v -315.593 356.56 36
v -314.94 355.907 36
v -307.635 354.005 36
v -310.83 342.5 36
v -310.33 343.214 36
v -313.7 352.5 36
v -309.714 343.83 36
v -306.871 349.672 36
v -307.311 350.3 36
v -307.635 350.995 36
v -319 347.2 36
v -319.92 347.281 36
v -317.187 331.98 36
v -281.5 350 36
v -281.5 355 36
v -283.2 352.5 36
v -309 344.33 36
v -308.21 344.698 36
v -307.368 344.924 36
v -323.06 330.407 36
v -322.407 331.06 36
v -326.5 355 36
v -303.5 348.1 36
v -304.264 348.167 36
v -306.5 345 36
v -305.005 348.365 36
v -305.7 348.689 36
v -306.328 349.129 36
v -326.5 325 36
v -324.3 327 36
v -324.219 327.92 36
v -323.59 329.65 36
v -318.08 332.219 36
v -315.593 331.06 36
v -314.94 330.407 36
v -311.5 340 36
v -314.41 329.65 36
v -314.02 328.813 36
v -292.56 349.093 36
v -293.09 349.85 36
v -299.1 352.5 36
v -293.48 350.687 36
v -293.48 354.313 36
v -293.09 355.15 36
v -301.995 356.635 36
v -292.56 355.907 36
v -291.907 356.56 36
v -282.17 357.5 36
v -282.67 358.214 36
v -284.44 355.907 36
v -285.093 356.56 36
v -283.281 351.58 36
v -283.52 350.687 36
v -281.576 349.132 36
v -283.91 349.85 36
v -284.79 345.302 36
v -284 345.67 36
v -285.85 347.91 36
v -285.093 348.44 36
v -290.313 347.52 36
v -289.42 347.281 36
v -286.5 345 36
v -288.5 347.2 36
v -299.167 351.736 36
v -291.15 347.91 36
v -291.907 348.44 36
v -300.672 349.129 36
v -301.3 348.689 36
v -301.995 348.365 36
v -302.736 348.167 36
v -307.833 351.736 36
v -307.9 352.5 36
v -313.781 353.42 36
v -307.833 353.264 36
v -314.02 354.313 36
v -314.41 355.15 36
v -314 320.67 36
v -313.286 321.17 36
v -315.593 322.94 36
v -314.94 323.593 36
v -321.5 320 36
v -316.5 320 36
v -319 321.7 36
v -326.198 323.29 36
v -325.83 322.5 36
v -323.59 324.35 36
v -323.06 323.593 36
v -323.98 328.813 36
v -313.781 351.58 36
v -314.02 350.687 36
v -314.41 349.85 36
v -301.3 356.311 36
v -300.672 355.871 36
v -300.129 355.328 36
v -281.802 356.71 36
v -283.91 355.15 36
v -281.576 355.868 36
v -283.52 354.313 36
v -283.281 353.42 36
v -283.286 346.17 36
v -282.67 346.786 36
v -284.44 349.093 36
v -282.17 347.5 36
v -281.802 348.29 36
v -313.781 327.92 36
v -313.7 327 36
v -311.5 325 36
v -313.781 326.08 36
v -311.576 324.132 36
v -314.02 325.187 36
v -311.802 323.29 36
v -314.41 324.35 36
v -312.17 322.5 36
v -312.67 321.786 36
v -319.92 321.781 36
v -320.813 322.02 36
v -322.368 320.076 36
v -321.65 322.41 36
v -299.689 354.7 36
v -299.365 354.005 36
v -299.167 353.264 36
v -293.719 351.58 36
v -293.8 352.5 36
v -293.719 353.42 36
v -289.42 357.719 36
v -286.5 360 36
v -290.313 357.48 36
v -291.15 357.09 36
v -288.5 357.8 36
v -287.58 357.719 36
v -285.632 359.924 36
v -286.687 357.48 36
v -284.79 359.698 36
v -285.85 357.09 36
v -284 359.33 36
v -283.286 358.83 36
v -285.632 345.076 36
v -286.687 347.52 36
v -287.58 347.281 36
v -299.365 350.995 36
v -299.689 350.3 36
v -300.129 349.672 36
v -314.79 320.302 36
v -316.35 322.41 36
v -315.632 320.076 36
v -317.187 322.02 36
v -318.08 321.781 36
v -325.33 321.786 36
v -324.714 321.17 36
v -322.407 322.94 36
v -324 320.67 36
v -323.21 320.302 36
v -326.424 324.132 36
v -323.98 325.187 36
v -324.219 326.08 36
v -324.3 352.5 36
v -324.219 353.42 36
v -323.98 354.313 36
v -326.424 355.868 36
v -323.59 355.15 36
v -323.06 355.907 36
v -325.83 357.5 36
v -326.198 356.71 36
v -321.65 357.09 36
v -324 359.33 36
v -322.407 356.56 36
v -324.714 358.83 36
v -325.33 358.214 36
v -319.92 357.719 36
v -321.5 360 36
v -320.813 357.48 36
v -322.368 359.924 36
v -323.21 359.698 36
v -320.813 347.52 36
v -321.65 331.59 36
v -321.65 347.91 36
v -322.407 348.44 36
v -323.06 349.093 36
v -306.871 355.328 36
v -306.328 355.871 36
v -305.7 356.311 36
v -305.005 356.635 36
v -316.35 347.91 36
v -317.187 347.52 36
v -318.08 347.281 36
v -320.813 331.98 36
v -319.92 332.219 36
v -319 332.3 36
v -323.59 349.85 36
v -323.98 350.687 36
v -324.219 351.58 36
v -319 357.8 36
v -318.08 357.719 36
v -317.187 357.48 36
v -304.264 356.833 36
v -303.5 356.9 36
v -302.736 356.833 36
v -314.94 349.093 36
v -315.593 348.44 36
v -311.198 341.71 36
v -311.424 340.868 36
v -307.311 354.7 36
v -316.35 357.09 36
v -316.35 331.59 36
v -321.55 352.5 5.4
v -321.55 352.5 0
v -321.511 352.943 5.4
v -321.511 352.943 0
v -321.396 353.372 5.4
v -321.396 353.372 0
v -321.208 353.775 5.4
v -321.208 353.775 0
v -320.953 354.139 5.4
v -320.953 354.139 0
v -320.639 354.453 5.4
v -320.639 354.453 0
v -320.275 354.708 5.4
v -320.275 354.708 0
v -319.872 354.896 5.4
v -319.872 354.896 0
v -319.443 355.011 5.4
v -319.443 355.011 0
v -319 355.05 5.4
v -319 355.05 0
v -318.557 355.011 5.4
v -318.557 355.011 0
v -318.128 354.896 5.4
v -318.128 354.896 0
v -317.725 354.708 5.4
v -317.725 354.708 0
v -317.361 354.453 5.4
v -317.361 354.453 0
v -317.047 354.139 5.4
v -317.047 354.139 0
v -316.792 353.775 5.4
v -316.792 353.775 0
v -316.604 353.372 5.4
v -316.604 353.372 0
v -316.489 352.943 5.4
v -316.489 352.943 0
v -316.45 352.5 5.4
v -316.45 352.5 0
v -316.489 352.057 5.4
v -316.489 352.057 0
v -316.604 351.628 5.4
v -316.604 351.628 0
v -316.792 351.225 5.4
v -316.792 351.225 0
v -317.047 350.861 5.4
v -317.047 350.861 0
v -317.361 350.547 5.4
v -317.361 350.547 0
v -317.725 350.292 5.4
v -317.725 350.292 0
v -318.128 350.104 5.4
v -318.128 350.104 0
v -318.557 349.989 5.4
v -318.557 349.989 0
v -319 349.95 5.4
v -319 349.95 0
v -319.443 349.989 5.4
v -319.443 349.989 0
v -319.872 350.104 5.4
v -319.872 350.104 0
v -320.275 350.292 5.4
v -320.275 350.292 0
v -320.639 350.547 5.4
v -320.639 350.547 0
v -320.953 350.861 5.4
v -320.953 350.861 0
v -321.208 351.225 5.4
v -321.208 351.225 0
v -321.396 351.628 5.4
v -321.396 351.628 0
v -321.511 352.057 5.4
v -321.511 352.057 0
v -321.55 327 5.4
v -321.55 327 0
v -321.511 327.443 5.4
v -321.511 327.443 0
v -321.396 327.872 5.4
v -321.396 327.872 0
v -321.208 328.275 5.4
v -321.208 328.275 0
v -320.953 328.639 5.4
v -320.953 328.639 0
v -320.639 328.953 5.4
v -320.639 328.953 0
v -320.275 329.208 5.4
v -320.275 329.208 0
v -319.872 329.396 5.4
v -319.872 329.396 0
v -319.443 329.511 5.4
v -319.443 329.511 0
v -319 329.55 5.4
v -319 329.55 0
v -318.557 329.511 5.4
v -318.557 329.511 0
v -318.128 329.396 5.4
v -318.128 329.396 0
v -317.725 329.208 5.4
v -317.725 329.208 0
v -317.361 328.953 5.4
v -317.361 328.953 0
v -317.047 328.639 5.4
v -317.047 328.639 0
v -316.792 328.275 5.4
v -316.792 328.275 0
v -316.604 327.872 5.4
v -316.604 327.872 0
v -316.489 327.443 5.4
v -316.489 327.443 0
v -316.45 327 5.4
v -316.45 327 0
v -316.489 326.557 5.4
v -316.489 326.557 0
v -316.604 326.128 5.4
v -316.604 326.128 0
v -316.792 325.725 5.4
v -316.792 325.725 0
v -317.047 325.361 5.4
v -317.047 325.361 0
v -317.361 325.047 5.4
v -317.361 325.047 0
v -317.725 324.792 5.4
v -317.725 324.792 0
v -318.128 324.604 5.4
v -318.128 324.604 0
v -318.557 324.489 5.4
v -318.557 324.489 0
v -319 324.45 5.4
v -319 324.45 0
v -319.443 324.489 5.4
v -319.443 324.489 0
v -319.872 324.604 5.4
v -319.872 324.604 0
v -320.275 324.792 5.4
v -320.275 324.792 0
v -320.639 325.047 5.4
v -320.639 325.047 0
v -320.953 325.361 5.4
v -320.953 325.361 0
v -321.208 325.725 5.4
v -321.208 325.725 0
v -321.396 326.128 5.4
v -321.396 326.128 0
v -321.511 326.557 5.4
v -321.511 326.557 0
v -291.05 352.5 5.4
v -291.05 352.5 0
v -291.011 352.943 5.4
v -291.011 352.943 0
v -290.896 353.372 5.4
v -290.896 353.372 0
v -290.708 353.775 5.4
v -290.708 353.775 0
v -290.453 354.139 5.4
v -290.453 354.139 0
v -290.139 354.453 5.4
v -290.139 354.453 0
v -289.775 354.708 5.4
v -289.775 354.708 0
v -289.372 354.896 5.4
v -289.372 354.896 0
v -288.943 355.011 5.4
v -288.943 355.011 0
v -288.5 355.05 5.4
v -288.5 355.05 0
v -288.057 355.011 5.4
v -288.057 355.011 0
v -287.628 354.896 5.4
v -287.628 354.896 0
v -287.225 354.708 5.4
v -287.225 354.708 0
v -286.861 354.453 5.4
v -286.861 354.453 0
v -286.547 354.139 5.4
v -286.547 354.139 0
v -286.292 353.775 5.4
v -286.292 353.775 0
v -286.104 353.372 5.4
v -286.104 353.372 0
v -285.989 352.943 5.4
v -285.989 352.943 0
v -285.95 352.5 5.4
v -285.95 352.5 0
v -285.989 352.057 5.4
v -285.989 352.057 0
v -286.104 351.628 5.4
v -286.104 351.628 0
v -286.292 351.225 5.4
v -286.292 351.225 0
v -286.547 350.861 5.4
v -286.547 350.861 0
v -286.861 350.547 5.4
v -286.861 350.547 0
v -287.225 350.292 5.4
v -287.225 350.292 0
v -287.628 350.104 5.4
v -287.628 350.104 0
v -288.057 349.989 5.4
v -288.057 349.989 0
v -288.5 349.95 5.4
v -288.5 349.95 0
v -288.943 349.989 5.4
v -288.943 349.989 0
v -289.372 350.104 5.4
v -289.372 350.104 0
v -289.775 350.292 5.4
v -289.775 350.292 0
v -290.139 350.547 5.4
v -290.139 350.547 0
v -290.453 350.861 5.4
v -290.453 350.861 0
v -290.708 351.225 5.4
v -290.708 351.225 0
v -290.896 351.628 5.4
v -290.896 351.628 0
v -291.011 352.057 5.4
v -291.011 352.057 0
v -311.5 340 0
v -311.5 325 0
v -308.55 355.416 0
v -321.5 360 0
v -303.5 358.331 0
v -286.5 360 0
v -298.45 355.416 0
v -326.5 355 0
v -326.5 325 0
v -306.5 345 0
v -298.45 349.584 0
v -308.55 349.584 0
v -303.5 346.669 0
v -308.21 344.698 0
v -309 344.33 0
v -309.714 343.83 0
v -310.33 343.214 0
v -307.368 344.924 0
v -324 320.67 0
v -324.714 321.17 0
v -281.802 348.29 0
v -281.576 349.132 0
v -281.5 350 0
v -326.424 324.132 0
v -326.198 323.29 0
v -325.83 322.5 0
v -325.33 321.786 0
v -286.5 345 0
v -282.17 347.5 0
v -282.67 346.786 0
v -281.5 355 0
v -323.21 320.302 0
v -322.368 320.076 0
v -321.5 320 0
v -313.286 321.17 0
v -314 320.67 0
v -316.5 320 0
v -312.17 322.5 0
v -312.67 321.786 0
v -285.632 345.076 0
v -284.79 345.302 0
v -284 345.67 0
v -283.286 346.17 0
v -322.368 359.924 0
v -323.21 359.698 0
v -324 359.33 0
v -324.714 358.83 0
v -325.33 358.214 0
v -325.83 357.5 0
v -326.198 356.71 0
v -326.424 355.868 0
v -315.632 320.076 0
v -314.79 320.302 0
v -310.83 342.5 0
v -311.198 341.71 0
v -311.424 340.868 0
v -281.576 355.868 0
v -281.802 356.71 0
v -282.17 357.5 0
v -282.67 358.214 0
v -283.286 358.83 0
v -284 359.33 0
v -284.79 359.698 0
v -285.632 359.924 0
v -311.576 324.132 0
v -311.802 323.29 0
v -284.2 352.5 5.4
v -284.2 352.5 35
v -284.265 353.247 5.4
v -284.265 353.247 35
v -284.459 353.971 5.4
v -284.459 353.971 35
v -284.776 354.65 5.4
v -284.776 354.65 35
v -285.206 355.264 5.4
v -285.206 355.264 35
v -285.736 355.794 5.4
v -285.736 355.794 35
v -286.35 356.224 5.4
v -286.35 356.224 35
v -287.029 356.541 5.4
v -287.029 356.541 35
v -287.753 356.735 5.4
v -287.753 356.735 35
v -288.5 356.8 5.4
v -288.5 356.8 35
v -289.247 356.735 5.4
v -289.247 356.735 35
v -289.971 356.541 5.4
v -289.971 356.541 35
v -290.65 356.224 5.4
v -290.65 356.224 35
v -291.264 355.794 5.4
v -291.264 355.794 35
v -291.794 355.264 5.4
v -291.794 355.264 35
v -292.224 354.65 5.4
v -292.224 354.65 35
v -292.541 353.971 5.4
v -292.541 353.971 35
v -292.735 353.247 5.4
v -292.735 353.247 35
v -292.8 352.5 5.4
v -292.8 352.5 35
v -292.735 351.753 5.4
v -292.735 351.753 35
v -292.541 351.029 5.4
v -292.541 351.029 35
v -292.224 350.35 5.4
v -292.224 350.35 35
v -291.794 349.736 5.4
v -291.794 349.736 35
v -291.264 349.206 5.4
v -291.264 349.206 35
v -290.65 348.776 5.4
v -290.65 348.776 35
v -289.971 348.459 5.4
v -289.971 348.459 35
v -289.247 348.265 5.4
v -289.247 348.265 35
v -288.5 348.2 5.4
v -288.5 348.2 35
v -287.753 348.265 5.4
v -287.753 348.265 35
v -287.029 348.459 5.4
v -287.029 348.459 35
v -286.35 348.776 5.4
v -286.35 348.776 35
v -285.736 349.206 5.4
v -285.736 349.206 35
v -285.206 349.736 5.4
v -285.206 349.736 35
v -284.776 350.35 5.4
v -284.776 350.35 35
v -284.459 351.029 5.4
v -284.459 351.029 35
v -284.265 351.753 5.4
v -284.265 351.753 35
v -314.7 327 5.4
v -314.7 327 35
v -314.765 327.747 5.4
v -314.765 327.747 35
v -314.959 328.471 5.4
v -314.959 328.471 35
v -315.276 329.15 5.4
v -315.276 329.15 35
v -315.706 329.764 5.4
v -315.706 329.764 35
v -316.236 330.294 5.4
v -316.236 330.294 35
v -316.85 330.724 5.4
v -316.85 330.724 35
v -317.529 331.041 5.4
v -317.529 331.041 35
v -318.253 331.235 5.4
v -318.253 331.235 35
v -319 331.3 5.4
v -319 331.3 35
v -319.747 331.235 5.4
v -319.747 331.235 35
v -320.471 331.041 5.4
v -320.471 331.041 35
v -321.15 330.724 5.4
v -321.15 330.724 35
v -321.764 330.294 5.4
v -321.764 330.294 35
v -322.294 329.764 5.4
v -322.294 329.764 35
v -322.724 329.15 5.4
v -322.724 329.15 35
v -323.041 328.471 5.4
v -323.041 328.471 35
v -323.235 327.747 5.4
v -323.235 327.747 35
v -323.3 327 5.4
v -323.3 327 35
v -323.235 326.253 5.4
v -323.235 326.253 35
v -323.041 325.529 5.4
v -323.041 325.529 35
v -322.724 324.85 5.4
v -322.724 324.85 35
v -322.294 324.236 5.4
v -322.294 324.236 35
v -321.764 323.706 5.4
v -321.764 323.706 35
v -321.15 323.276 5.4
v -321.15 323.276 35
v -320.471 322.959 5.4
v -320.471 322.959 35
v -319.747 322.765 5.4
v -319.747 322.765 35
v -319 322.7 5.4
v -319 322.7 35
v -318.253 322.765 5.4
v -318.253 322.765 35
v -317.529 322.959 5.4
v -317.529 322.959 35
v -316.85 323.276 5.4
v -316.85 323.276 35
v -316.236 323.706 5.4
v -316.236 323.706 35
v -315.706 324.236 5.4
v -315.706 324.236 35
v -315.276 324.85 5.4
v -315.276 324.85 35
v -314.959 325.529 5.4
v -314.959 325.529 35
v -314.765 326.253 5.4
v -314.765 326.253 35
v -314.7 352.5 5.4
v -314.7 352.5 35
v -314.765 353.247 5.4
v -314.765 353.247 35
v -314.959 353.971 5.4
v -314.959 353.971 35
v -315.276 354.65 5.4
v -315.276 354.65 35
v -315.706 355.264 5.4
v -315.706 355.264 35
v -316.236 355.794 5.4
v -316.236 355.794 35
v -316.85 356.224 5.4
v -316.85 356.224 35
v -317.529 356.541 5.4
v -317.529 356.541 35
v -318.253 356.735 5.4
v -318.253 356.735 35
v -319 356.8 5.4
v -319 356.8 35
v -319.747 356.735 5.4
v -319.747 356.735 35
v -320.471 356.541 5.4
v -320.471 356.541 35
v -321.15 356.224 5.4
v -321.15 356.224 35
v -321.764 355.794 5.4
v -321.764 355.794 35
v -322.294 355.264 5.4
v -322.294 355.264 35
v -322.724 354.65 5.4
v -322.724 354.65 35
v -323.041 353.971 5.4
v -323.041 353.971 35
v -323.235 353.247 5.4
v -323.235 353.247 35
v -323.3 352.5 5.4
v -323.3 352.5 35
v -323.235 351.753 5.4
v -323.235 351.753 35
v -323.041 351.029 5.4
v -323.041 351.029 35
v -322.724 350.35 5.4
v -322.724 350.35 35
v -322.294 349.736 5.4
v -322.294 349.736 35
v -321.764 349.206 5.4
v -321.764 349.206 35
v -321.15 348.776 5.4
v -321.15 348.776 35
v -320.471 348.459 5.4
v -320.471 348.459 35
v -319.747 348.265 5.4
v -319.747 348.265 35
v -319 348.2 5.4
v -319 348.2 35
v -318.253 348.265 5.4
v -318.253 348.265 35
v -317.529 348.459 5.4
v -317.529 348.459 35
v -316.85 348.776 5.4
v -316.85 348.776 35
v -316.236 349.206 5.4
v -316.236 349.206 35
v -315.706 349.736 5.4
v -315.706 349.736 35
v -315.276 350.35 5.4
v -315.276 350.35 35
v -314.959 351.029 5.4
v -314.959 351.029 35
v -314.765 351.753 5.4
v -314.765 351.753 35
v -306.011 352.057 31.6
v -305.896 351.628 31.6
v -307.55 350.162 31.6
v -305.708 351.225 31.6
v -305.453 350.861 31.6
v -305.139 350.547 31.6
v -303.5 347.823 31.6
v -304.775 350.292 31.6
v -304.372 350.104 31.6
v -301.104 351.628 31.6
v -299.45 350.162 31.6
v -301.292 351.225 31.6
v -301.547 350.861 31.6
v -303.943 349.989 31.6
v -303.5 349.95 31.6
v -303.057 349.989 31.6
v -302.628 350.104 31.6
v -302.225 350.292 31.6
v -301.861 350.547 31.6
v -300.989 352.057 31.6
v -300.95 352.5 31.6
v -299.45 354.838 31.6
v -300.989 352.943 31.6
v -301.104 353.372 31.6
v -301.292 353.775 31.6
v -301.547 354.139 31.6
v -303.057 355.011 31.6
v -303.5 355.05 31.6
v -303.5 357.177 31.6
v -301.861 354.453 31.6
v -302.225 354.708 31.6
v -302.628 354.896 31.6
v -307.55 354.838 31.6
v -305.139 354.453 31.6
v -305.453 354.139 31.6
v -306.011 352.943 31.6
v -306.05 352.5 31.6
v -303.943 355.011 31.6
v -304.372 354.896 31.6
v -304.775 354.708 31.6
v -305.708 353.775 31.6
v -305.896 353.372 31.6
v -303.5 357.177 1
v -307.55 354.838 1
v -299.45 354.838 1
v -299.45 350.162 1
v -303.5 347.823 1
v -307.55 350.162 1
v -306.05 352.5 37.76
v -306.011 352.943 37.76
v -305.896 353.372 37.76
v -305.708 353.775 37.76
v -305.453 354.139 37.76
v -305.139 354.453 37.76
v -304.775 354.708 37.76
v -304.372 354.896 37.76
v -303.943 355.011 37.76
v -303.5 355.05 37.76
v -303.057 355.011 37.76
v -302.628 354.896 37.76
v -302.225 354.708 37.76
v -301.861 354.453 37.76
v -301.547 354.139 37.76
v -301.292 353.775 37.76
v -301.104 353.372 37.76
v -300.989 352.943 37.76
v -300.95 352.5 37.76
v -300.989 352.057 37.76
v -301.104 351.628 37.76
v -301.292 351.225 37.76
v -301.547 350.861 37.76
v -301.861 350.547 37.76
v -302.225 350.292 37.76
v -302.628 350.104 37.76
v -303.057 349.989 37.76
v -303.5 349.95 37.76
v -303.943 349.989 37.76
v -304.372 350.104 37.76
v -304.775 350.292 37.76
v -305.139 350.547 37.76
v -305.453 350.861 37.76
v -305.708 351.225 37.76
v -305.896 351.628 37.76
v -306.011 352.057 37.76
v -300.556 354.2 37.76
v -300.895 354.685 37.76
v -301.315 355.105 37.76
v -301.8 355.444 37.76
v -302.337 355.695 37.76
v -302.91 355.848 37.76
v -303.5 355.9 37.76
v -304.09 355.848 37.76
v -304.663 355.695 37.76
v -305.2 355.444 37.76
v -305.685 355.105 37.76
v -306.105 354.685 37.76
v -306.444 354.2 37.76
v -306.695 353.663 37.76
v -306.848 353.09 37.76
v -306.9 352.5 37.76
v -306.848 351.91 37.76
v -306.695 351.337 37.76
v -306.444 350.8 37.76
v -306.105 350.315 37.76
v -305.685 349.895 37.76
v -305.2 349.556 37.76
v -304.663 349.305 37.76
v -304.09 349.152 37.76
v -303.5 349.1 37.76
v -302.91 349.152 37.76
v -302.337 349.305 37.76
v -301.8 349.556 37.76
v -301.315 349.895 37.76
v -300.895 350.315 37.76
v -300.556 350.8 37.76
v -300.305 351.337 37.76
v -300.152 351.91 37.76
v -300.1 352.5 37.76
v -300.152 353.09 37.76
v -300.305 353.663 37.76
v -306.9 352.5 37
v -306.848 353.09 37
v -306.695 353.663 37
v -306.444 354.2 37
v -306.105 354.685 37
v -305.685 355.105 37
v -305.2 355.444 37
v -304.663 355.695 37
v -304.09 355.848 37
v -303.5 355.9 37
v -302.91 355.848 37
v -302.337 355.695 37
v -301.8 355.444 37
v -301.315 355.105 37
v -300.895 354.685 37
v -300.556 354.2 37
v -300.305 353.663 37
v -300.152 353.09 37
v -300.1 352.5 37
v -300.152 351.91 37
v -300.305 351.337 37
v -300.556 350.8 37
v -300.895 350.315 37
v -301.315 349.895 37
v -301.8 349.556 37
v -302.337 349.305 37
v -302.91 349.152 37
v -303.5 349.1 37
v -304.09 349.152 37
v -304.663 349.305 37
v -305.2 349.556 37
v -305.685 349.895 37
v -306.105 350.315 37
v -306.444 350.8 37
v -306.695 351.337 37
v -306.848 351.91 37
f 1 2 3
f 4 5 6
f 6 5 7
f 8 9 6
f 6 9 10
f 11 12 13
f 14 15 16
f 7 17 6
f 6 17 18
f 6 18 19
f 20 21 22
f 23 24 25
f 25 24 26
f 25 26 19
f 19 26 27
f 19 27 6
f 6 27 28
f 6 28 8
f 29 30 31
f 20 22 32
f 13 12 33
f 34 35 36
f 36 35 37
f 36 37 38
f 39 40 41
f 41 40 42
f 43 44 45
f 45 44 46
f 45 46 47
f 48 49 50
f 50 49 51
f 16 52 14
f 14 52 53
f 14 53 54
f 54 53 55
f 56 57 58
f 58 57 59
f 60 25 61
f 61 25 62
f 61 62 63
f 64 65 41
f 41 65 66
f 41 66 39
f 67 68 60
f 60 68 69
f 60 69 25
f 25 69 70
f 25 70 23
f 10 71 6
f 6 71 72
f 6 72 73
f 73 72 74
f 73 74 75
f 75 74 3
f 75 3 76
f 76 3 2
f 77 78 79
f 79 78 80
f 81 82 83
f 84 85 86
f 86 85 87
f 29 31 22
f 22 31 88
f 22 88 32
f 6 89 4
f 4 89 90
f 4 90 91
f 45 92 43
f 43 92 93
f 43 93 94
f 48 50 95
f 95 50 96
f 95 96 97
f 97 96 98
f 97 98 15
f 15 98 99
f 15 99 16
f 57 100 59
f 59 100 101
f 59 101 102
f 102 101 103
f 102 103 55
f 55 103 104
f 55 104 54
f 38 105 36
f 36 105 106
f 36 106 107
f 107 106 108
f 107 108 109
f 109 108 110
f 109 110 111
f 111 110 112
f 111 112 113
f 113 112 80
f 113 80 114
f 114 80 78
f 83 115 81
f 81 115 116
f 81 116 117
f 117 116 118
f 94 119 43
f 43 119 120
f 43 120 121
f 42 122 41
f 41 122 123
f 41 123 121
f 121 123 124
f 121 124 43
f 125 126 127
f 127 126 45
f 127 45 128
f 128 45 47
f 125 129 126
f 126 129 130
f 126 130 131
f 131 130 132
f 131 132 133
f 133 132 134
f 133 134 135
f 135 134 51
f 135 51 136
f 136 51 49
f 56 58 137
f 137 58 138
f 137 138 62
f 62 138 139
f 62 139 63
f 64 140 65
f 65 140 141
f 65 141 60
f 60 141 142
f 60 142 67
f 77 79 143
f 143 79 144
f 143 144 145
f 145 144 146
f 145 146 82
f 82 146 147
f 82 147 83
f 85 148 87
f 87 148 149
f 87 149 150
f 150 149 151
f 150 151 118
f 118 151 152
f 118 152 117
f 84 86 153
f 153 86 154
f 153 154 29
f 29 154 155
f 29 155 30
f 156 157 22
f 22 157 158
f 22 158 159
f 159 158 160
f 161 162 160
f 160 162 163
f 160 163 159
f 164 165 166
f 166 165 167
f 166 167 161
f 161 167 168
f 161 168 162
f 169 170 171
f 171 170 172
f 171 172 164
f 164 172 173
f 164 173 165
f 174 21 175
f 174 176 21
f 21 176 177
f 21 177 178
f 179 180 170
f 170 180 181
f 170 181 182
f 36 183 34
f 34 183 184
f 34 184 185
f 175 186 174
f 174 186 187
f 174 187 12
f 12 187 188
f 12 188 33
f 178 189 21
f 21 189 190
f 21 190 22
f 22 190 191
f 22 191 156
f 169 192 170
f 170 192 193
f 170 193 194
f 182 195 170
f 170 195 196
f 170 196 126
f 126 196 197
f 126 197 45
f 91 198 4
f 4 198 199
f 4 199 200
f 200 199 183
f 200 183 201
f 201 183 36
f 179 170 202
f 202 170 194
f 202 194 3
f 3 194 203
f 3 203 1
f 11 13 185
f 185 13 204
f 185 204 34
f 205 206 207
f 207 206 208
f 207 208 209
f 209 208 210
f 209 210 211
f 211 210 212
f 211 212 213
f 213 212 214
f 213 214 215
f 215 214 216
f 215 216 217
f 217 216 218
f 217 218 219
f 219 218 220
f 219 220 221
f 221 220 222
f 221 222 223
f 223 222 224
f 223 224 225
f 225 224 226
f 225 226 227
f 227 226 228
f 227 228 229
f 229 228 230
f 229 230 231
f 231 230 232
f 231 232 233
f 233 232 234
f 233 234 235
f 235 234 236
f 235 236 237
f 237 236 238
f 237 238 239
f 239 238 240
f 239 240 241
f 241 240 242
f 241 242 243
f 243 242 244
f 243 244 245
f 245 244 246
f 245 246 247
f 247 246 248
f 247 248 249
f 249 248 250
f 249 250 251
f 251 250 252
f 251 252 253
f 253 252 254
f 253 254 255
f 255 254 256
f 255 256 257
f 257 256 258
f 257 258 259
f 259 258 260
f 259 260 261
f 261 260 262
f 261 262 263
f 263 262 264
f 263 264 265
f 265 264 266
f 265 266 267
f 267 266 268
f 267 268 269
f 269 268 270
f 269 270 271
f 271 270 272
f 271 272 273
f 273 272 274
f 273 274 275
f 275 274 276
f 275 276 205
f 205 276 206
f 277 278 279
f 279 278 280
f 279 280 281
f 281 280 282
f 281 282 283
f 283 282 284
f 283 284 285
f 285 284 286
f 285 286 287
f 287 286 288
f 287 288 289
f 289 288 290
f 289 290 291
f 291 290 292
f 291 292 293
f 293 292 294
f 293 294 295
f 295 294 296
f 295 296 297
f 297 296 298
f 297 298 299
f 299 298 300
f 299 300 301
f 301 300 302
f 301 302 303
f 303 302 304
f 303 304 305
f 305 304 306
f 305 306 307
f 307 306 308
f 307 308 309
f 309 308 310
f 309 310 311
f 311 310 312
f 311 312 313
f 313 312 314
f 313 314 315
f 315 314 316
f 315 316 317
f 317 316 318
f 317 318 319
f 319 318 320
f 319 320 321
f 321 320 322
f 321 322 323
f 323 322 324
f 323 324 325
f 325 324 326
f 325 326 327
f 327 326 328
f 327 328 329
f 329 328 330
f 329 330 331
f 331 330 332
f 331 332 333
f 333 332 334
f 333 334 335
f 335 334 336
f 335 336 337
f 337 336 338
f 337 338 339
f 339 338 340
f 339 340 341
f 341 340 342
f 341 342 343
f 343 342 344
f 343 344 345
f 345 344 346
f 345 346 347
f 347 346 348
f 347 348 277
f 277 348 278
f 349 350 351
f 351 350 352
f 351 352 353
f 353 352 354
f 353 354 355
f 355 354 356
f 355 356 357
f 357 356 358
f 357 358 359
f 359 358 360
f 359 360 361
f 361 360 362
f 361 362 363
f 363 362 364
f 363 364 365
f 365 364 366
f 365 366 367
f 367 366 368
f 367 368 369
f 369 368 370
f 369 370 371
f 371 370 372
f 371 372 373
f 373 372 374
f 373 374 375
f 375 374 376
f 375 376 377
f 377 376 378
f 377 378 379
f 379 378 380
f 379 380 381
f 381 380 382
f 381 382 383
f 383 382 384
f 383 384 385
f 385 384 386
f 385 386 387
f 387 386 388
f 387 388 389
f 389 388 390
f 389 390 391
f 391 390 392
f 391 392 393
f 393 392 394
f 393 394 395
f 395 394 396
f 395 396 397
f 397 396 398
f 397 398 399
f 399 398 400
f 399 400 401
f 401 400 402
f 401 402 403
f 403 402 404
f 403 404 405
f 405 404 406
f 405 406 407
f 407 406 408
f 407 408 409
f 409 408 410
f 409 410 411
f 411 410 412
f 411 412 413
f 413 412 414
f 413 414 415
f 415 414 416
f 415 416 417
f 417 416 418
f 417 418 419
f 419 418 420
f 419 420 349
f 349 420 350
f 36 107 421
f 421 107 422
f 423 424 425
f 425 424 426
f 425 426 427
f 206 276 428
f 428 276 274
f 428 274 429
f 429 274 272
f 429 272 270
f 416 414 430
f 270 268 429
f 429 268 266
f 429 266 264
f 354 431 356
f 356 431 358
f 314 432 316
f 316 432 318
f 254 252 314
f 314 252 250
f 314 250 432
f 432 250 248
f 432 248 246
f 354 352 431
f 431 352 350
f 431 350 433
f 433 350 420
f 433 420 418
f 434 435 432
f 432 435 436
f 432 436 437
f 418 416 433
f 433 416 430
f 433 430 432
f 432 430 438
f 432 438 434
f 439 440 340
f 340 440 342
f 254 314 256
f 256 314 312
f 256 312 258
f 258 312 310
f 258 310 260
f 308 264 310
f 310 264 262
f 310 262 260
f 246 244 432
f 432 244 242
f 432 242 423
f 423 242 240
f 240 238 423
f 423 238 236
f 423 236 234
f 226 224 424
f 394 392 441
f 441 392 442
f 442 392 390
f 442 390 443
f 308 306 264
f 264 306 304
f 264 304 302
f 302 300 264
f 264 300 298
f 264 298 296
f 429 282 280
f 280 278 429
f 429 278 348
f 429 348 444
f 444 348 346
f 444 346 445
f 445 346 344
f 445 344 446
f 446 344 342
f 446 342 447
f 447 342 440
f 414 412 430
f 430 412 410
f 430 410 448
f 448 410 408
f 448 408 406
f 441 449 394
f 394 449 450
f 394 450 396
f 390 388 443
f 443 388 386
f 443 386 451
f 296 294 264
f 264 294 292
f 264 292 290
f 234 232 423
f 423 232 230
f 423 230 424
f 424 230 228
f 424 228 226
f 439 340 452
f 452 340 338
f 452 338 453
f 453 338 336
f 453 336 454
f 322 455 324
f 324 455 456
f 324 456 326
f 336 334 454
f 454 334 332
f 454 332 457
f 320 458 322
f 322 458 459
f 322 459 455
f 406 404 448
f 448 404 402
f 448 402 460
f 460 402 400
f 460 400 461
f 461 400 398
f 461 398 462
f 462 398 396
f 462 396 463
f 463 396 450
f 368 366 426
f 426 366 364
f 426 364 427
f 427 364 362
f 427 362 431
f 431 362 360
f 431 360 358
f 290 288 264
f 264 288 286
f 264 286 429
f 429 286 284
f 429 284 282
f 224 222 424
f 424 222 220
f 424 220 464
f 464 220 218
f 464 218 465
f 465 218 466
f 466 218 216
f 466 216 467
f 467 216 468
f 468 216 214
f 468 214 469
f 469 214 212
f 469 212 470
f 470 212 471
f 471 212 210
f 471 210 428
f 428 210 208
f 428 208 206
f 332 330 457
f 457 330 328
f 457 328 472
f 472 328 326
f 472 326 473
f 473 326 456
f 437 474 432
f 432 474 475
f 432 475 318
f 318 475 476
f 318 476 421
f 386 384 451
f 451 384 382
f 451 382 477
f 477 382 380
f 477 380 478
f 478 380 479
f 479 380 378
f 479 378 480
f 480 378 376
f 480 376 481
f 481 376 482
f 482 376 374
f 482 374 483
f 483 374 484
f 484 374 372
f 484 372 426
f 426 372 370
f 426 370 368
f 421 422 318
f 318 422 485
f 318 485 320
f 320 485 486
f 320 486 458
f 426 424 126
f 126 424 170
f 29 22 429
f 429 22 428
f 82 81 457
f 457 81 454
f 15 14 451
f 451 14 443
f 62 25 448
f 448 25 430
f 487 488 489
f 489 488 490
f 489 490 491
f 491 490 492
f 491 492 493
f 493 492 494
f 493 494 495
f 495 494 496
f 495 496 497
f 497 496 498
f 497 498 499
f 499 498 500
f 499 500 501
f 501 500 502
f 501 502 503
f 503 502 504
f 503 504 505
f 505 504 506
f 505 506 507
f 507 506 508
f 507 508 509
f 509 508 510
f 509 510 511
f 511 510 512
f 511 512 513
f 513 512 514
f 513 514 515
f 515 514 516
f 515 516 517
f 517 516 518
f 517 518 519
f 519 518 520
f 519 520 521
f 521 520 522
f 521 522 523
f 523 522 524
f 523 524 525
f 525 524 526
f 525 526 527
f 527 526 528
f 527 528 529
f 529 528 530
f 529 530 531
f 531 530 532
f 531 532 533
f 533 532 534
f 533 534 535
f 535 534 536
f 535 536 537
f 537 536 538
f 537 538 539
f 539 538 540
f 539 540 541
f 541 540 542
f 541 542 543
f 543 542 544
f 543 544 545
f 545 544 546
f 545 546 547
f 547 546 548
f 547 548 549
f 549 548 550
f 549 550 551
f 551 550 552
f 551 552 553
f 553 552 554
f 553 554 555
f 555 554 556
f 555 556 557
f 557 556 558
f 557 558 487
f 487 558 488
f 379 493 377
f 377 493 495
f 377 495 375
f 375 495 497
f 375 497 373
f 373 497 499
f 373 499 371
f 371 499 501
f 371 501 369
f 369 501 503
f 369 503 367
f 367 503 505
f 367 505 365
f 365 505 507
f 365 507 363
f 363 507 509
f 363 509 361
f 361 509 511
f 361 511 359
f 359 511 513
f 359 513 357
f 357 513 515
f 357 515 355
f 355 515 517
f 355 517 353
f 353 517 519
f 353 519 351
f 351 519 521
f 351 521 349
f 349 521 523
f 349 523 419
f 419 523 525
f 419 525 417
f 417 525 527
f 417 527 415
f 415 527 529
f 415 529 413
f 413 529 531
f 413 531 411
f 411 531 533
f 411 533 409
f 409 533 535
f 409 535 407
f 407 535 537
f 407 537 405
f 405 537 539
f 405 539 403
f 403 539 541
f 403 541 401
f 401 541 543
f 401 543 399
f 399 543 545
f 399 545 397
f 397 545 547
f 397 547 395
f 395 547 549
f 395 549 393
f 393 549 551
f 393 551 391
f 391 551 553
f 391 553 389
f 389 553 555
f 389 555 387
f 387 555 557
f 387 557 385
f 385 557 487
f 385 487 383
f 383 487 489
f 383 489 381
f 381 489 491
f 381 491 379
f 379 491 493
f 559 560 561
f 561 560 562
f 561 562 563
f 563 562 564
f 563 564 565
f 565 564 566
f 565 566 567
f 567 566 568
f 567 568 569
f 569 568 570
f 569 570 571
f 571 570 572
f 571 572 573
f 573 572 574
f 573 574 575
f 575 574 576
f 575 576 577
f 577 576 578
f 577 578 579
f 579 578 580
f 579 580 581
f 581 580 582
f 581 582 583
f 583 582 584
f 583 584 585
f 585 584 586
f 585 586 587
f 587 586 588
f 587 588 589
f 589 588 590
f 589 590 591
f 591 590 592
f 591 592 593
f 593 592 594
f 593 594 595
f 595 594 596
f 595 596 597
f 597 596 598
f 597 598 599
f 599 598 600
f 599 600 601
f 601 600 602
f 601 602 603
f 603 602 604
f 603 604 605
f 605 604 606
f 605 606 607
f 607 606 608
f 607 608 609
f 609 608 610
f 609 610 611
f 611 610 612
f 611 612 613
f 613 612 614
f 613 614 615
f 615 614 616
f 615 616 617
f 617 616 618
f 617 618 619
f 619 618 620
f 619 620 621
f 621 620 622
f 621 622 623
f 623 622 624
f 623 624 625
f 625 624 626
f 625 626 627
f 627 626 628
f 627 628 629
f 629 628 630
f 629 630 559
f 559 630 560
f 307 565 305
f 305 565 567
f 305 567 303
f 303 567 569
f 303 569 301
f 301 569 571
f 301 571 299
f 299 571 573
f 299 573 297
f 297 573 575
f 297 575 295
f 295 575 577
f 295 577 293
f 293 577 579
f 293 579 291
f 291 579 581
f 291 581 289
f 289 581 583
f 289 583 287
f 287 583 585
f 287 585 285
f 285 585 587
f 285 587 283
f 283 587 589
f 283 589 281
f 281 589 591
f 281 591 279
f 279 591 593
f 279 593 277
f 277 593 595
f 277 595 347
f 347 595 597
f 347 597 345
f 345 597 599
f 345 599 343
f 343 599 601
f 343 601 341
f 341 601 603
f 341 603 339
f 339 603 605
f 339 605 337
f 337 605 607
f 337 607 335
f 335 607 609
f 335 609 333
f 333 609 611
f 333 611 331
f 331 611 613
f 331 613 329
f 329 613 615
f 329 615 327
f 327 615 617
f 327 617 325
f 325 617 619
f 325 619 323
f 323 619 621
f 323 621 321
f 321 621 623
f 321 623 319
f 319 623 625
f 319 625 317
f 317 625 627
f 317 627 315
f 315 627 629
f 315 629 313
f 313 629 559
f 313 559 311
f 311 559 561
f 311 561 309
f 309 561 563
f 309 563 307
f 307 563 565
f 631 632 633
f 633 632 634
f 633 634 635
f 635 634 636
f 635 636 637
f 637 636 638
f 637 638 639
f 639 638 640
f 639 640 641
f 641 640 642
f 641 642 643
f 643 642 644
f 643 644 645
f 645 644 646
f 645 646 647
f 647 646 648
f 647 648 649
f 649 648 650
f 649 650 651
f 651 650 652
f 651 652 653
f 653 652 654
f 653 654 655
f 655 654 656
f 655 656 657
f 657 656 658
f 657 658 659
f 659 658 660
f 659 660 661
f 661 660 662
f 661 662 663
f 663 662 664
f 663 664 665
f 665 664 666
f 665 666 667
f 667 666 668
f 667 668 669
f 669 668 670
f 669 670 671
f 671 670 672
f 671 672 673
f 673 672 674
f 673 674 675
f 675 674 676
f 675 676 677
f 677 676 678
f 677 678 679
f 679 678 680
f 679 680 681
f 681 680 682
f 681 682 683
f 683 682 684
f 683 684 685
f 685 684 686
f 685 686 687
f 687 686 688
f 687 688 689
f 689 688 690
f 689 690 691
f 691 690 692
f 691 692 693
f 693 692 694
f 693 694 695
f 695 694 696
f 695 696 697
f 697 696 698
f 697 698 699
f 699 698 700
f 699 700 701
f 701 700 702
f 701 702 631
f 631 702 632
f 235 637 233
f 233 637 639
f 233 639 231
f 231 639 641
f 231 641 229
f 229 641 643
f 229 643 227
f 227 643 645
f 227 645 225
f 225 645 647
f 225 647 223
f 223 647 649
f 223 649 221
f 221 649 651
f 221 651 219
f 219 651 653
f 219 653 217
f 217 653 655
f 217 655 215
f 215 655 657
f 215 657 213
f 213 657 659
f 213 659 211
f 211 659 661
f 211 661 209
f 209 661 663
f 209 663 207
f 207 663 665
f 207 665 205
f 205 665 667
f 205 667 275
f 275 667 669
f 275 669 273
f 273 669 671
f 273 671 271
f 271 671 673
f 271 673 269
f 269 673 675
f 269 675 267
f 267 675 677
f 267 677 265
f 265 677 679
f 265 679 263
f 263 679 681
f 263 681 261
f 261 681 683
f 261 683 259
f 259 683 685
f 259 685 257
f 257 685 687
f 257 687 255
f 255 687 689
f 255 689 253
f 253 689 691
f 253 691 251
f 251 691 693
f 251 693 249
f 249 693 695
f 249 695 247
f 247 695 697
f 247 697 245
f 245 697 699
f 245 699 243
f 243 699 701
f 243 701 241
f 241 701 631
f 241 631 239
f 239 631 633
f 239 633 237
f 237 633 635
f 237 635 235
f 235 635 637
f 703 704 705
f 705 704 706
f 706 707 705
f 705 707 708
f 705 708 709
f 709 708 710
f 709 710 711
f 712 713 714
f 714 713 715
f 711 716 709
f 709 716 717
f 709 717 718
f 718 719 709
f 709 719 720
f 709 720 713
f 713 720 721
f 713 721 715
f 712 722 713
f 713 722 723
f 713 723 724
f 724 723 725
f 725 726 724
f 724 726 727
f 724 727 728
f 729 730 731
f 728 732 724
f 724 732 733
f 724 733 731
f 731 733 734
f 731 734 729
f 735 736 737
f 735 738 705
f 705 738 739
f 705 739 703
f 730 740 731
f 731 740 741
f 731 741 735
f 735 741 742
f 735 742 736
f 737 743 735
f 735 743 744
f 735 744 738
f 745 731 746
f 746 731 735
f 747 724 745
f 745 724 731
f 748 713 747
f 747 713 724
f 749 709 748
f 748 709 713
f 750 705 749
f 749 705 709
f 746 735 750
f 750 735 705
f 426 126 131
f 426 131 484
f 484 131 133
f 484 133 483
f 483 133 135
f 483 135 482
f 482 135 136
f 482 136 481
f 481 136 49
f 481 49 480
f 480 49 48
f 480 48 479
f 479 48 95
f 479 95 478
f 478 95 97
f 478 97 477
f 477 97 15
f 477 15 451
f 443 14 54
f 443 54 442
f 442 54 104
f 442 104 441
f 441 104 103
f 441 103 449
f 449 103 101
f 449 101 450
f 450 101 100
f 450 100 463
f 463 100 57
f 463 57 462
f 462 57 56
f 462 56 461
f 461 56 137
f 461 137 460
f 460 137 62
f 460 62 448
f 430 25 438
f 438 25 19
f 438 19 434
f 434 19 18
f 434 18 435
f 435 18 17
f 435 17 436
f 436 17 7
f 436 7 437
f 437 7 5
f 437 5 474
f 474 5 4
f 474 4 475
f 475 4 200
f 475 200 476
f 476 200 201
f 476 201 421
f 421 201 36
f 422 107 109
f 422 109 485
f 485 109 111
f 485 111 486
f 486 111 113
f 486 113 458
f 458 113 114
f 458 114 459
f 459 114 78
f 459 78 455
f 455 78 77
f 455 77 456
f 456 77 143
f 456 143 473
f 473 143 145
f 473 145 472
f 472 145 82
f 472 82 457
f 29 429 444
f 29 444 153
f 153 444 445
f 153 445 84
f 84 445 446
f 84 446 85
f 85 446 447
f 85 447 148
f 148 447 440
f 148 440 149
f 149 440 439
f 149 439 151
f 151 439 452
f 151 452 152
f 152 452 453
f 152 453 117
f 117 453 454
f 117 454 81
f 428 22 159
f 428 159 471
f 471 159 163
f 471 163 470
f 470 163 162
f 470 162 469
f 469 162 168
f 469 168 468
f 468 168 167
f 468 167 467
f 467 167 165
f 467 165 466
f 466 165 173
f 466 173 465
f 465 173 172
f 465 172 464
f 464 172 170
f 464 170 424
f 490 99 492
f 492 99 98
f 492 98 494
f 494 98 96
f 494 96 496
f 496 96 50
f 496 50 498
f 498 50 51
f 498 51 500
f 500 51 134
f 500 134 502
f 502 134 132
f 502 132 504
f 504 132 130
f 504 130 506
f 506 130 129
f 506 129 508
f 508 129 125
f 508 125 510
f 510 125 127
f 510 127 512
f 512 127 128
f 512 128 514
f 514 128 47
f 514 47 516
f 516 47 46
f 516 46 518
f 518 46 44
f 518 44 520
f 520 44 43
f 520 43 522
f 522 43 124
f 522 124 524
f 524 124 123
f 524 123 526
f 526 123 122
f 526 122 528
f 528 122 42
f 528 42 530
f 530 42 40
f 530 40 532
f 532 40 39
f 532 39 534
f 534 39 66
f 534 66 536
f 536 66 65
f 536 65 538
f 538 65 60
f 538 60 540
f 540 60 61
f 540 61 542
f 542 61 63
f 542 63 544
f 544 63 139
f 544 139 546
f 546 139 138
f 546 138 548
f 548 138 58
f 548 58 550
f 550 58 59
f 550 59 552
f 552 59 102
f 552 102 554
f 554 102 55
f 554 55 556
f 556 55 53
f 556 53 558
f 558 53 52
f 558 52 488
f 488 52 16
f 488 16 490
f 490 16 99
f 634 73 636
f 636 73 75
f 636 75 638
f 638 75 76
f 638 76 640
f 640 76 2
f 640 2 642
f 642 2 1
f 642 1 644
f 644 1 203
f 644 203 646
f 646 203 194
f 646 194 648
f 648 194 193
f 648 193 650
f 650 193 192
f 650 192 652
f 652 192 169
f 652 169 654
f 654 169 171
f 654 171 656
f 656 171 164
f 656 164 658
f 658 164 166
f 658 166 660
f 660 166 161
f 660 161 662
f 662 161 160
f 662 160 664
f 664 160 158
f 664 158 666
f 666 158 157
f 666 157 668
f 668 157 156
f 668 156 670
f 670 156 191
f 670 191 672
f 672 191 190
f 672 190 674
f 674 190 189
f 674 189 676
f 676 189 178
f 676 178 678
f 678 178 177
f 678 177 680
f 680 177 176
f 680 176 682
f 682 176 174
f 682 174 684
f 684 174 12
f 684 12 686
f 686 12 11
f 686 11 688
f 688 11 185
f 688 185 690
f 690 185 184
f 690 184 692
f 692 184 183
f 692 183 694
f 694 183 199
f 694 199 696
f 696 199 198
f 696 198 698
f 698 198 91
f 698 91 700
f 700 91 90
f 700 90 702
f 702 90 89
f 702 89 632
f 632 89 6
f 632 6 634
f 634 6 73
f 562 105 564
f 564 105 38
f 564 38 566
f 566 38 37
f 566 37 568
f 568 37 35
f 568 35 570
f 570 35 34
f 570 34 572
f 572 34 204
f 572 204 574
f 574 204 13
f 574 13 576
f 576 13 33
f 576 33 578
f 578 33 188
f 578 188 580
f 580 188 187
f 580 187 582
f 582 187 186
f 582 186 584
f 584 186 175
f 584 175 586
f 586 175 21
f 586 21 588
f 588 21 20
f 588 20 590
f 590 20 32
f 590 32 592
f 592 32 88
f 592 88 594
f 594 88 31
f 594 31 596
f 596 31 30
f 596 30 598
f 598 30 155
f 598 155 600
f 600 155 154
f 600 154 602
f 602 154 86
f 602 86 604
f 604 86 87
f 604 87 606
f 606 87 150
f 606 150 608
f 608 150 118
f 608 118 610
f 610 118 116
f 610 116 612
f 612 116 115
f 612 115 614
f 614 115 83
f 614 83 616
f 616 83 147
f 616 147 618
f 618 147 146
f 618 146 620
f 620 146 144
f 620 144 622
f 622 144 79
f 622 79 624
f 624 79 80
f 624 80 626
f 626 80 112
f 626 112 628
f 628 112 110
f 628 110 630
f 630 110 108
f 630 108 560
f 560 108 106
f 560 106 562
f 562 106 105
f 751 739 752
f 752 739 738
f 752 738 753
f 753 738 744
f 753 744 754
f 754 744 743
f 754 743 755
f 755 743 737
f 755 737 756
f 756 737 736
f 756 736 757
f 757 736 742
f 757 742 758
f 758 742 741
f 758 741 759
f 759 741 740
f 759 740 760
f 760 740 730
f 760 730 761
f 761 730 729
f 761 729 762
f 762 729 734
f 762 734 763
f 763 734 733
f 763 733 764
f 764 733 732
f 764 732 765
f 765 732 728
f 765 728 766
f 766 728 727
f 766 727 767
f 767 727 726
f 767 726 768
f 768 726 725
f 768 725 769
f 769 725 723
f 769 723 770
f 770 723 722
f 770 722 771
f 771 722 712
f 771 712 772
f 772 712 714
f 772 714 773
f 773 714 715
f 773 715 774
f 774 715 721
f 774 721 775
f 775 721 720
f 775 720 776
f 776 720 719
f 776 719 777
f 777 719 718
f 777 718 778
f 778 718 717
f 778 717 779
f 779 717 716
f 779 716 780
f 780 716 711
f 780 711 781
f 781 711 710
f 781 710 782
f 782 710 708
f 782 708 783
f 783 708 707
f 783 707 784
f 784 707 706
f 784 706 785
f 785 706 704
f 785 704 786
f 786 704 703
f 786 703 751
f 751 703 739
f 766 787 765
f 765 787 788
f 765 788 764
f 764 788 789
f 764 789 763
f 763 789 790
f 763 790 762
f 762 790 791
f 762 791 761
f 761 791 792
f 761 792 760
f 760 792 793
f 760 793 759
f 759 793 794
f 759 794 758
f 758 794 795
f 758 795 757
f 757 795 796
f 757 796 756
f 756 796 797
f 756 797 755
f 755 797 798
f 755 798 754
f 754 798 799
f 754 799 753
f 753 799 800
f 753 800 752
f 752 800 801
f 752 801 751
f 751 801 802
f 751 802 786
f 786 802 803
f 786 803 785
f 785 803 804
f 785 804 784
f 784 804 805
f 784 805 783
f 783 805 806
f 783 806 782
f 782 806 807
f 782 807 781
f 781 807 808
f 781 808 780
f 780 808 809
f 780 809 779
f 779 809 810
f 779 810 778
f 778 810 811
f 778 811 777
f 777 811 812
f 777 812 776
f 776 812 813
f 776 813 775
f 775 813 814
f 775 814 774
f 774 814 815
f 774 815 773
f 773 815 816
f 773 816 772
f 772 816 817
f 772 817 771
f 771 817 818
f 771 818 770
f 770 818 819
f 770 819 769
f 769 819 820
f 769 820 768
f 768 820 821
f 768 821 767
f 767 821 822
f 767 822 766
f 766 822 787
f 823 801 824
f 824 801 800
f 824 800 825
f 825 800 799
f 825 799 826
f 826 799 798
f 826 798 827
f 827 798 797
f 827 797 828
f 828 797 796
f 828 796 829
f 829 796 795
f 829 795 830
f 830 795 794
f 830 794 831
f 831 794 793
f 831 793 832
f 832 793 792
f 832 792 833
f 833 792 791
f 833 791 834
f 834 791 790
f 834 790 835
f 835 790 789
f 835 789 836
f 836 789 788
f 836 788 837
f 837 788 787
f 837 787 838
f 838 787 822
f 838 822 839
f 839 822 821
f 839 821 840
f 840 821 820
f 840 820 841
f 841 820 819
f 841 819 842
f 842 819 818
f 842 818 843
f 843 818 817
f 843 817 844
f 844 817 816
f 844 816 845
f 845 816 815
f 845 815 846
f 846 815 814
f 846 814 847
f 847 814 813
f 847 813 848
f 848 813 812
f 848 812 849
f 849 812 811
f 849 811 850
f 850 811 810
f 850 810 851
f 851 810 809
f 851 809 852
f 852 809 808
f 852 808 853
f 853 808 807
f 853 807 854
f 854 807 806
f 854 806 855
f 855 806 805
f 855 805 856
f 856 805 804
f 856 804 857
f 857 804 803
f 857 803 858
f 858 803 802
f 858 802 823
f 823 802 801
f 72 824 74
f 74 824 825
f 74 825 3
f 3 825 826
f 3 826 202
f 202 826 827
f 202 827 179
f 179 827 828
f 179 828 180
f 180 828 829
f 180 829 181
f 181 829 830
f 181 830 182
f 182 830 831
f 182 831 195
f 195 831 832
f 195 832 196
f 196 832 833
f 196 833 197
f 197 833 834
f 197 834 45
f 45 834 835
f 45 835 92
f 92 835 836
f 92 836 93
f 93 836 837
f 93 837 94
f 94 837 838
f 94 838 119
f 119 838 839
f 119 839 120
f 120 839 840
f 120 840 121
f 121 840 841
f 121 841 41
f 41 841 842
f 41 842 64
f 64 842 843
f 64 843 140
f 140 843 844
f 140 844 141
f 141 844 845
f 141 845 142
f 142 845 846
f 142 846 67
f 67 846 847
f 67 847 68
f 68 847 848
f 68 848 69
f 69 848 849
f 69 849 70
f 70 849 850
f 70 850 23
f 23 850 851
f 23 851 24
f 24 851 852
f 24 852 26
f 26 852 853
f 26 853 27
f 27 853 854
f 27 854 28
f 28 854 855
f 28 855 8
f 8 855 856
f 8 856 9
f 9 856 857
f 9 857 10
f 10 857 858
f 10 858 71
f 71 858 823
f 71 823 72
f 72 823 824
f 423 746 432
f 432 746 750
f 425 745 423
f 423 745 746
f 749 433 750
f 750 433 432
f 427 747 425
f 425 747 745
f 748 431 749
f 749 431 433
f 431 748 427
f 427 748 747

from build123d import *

# Parameters (mm, degrees)
SKETCH2_R           = 2.55
SKETCH2_W           = 30
SKETCH2_H           = 15
BOSS_EXTRUDE1_DEPTH = 36
SKETCH3_R           = 4.3
CUT_EXTRUDE1_DEPTH  = 30.6
SKETCH4_R           = 4.05
CUT_EXTRUDE2_DEPTH  = 31.6
FILLET1_R           = 5
CHAMFER1_SIZE       = 1
SKETCH8_R           = 2.55
CUT_EXTRUDE3_DEPTH  = 10
SKETCH9_R           = 3.4
SKETCH9_R_2         = 2.55
BOSS_EXTRUDE3_DEPTH = 1.76
CHAMFER3_SIZE       = 1
CHAMFER4_SIZE       = 1


with BuildPart() as part:
    # Sketch2 → Boss-Extrude1 (new body)
    # profile 1 of 2: a face of its own
    with BuildSketch(Plane.XY):
        Polygon((-326.5, 320), (-311.5, 320), (-311.5, 345), (-311.5, 360), (-326.5, 360), align=None)
        with Locations((-319, 327)):
            Circle(SKETCH2_R, mode=Mode.SUBTRACT)
        with Locations((-319, 352.5)):
            Circle(SKETCH2_R, mode=Mode.SUBTRACT)
    # profile 2 of 2: a face of its own
    with BuildSketch(Plane.XY):
        with Locations((-296.5, 352.5)):
            Rectangle(SKETCH2_W, SKETCH2_H)
        with Locations((-288.5, 352.5)):
            Circle(SKETCH2_R, mode=Mode.SUBTRACT)
    extrude(amount=BOSS_EXTRUDE1_DEPTH)

    # Sketch3 → Cut-Extrude1 (cut)
    with BuildSketch(Plane.XY.offset(36)):
        with Locations((-319, 352.5)):
            Circle(SKETCH3_R)
        with Locations((-319, 327)):
            Circle(SKETCH3_R)
        with Locations((-288.5, 352.5)):
            Circle(SKETCH3_R)
    extrude(amount=-CUT_EXTRUDE1_DEPTH, mode=Mode.SUBTRACT)

    # Sketch4 → Cut-Extrude2 (cut)
    with BuildSketch(Plane(origin=(0, 0, 0), x_dir=(-1, 0, 0), z_dir=(0, 0, -1))):
        with Locations((303.5, 352.5)):
            Circle(SKETCH4_R)
        Polygon((307.55, 354.83826859), (303.5, 357.17653718), (299.45, 354.83826859), (299.45, 350.16173141), (303.5, 347.82346282), (307.55, 350.16173141), align=None)
    extrude(amount=-CUT_EXTRUDE2_DEPTH, mode=Mode.SUBTRACT)

    # Fillet1
    fillet1_edges = [part.edges().sort_by_distance(p)[0] for p in [
        (-311.5, 345, 18),
        (-281.5, 345, 18),
        (-281.5, 360, 18),
        (-311.5, 320, 18),
        (-326.5, 320, 18),
        (-326.5, 360, 18),
    ]]
    fillet(fillet1_edges, radius=FILLET1_R)

    # Chamfer1
    chamfer1_edges = [part.edges().sort_by_distance(p)[0] for p in [
        (-292.8, 352.5, 36),
        (-323.3, 327, 36),
        (-323.3, 352.5, 36),
    ]]
    chamfer(chamfer1_edges, length=CHAMFER1_SIZE)

    # Sketch8 → Cut-Extrude3 (cut)
    with BuildSketch(Plane(origin=(0, 0, 31.6), x_dir=(-1, 0, 0), z_dir=(0, 0, -1))):
        with Locations((303.5, 352.5)):
            Circle(SKETCH8_R)
    extrude(amount=-CUT_EXTRUDE3_DEPTH, mode=Mode.SUBTRACT)

    # Sketch9 → Boss-Extrude3 (add)
    with BuildSketch(Plane.XY.offset(36)):
        with Locations(Location((-303.5, 352.5, 0), (0, 0, 180))):
            Circle(SKETCH9_R)
        with Locations(Location((-303.5, 352.5, 0), (0, 0, 180))):
            Circle(SKETCH9_R_2, mode=Mode.SUBTRACT)
    extrude(amount=BOSS_EXTRUDE3_DEPTH)

    # Chamfer3
    chamfer3_edges = [part.edges().sort_by_distance(p)[0] for p in [
        (-300.1, 352.5, 36),
    ]]
    chamfer(chamfer3_edges, length=CHAMFER3_SIZE)

    # Chamfer4
    chamfer4_edges = [part.edges().sort_by_distance(p)[0] for p in [
        (-305.525, 348.992597115, 0),
        (-307.55, 352.5, 0),
        (-305.525, 356.007402885, 0),
        (-301.475, 356.007402885, 0),
        (-299.45, 352.5, 0),
        (-301.475, 348.992597115, 0),
    ]]
    chamfer(chamfer4_edges, length=CHAMFER4_SIZE)


solid = part.part
